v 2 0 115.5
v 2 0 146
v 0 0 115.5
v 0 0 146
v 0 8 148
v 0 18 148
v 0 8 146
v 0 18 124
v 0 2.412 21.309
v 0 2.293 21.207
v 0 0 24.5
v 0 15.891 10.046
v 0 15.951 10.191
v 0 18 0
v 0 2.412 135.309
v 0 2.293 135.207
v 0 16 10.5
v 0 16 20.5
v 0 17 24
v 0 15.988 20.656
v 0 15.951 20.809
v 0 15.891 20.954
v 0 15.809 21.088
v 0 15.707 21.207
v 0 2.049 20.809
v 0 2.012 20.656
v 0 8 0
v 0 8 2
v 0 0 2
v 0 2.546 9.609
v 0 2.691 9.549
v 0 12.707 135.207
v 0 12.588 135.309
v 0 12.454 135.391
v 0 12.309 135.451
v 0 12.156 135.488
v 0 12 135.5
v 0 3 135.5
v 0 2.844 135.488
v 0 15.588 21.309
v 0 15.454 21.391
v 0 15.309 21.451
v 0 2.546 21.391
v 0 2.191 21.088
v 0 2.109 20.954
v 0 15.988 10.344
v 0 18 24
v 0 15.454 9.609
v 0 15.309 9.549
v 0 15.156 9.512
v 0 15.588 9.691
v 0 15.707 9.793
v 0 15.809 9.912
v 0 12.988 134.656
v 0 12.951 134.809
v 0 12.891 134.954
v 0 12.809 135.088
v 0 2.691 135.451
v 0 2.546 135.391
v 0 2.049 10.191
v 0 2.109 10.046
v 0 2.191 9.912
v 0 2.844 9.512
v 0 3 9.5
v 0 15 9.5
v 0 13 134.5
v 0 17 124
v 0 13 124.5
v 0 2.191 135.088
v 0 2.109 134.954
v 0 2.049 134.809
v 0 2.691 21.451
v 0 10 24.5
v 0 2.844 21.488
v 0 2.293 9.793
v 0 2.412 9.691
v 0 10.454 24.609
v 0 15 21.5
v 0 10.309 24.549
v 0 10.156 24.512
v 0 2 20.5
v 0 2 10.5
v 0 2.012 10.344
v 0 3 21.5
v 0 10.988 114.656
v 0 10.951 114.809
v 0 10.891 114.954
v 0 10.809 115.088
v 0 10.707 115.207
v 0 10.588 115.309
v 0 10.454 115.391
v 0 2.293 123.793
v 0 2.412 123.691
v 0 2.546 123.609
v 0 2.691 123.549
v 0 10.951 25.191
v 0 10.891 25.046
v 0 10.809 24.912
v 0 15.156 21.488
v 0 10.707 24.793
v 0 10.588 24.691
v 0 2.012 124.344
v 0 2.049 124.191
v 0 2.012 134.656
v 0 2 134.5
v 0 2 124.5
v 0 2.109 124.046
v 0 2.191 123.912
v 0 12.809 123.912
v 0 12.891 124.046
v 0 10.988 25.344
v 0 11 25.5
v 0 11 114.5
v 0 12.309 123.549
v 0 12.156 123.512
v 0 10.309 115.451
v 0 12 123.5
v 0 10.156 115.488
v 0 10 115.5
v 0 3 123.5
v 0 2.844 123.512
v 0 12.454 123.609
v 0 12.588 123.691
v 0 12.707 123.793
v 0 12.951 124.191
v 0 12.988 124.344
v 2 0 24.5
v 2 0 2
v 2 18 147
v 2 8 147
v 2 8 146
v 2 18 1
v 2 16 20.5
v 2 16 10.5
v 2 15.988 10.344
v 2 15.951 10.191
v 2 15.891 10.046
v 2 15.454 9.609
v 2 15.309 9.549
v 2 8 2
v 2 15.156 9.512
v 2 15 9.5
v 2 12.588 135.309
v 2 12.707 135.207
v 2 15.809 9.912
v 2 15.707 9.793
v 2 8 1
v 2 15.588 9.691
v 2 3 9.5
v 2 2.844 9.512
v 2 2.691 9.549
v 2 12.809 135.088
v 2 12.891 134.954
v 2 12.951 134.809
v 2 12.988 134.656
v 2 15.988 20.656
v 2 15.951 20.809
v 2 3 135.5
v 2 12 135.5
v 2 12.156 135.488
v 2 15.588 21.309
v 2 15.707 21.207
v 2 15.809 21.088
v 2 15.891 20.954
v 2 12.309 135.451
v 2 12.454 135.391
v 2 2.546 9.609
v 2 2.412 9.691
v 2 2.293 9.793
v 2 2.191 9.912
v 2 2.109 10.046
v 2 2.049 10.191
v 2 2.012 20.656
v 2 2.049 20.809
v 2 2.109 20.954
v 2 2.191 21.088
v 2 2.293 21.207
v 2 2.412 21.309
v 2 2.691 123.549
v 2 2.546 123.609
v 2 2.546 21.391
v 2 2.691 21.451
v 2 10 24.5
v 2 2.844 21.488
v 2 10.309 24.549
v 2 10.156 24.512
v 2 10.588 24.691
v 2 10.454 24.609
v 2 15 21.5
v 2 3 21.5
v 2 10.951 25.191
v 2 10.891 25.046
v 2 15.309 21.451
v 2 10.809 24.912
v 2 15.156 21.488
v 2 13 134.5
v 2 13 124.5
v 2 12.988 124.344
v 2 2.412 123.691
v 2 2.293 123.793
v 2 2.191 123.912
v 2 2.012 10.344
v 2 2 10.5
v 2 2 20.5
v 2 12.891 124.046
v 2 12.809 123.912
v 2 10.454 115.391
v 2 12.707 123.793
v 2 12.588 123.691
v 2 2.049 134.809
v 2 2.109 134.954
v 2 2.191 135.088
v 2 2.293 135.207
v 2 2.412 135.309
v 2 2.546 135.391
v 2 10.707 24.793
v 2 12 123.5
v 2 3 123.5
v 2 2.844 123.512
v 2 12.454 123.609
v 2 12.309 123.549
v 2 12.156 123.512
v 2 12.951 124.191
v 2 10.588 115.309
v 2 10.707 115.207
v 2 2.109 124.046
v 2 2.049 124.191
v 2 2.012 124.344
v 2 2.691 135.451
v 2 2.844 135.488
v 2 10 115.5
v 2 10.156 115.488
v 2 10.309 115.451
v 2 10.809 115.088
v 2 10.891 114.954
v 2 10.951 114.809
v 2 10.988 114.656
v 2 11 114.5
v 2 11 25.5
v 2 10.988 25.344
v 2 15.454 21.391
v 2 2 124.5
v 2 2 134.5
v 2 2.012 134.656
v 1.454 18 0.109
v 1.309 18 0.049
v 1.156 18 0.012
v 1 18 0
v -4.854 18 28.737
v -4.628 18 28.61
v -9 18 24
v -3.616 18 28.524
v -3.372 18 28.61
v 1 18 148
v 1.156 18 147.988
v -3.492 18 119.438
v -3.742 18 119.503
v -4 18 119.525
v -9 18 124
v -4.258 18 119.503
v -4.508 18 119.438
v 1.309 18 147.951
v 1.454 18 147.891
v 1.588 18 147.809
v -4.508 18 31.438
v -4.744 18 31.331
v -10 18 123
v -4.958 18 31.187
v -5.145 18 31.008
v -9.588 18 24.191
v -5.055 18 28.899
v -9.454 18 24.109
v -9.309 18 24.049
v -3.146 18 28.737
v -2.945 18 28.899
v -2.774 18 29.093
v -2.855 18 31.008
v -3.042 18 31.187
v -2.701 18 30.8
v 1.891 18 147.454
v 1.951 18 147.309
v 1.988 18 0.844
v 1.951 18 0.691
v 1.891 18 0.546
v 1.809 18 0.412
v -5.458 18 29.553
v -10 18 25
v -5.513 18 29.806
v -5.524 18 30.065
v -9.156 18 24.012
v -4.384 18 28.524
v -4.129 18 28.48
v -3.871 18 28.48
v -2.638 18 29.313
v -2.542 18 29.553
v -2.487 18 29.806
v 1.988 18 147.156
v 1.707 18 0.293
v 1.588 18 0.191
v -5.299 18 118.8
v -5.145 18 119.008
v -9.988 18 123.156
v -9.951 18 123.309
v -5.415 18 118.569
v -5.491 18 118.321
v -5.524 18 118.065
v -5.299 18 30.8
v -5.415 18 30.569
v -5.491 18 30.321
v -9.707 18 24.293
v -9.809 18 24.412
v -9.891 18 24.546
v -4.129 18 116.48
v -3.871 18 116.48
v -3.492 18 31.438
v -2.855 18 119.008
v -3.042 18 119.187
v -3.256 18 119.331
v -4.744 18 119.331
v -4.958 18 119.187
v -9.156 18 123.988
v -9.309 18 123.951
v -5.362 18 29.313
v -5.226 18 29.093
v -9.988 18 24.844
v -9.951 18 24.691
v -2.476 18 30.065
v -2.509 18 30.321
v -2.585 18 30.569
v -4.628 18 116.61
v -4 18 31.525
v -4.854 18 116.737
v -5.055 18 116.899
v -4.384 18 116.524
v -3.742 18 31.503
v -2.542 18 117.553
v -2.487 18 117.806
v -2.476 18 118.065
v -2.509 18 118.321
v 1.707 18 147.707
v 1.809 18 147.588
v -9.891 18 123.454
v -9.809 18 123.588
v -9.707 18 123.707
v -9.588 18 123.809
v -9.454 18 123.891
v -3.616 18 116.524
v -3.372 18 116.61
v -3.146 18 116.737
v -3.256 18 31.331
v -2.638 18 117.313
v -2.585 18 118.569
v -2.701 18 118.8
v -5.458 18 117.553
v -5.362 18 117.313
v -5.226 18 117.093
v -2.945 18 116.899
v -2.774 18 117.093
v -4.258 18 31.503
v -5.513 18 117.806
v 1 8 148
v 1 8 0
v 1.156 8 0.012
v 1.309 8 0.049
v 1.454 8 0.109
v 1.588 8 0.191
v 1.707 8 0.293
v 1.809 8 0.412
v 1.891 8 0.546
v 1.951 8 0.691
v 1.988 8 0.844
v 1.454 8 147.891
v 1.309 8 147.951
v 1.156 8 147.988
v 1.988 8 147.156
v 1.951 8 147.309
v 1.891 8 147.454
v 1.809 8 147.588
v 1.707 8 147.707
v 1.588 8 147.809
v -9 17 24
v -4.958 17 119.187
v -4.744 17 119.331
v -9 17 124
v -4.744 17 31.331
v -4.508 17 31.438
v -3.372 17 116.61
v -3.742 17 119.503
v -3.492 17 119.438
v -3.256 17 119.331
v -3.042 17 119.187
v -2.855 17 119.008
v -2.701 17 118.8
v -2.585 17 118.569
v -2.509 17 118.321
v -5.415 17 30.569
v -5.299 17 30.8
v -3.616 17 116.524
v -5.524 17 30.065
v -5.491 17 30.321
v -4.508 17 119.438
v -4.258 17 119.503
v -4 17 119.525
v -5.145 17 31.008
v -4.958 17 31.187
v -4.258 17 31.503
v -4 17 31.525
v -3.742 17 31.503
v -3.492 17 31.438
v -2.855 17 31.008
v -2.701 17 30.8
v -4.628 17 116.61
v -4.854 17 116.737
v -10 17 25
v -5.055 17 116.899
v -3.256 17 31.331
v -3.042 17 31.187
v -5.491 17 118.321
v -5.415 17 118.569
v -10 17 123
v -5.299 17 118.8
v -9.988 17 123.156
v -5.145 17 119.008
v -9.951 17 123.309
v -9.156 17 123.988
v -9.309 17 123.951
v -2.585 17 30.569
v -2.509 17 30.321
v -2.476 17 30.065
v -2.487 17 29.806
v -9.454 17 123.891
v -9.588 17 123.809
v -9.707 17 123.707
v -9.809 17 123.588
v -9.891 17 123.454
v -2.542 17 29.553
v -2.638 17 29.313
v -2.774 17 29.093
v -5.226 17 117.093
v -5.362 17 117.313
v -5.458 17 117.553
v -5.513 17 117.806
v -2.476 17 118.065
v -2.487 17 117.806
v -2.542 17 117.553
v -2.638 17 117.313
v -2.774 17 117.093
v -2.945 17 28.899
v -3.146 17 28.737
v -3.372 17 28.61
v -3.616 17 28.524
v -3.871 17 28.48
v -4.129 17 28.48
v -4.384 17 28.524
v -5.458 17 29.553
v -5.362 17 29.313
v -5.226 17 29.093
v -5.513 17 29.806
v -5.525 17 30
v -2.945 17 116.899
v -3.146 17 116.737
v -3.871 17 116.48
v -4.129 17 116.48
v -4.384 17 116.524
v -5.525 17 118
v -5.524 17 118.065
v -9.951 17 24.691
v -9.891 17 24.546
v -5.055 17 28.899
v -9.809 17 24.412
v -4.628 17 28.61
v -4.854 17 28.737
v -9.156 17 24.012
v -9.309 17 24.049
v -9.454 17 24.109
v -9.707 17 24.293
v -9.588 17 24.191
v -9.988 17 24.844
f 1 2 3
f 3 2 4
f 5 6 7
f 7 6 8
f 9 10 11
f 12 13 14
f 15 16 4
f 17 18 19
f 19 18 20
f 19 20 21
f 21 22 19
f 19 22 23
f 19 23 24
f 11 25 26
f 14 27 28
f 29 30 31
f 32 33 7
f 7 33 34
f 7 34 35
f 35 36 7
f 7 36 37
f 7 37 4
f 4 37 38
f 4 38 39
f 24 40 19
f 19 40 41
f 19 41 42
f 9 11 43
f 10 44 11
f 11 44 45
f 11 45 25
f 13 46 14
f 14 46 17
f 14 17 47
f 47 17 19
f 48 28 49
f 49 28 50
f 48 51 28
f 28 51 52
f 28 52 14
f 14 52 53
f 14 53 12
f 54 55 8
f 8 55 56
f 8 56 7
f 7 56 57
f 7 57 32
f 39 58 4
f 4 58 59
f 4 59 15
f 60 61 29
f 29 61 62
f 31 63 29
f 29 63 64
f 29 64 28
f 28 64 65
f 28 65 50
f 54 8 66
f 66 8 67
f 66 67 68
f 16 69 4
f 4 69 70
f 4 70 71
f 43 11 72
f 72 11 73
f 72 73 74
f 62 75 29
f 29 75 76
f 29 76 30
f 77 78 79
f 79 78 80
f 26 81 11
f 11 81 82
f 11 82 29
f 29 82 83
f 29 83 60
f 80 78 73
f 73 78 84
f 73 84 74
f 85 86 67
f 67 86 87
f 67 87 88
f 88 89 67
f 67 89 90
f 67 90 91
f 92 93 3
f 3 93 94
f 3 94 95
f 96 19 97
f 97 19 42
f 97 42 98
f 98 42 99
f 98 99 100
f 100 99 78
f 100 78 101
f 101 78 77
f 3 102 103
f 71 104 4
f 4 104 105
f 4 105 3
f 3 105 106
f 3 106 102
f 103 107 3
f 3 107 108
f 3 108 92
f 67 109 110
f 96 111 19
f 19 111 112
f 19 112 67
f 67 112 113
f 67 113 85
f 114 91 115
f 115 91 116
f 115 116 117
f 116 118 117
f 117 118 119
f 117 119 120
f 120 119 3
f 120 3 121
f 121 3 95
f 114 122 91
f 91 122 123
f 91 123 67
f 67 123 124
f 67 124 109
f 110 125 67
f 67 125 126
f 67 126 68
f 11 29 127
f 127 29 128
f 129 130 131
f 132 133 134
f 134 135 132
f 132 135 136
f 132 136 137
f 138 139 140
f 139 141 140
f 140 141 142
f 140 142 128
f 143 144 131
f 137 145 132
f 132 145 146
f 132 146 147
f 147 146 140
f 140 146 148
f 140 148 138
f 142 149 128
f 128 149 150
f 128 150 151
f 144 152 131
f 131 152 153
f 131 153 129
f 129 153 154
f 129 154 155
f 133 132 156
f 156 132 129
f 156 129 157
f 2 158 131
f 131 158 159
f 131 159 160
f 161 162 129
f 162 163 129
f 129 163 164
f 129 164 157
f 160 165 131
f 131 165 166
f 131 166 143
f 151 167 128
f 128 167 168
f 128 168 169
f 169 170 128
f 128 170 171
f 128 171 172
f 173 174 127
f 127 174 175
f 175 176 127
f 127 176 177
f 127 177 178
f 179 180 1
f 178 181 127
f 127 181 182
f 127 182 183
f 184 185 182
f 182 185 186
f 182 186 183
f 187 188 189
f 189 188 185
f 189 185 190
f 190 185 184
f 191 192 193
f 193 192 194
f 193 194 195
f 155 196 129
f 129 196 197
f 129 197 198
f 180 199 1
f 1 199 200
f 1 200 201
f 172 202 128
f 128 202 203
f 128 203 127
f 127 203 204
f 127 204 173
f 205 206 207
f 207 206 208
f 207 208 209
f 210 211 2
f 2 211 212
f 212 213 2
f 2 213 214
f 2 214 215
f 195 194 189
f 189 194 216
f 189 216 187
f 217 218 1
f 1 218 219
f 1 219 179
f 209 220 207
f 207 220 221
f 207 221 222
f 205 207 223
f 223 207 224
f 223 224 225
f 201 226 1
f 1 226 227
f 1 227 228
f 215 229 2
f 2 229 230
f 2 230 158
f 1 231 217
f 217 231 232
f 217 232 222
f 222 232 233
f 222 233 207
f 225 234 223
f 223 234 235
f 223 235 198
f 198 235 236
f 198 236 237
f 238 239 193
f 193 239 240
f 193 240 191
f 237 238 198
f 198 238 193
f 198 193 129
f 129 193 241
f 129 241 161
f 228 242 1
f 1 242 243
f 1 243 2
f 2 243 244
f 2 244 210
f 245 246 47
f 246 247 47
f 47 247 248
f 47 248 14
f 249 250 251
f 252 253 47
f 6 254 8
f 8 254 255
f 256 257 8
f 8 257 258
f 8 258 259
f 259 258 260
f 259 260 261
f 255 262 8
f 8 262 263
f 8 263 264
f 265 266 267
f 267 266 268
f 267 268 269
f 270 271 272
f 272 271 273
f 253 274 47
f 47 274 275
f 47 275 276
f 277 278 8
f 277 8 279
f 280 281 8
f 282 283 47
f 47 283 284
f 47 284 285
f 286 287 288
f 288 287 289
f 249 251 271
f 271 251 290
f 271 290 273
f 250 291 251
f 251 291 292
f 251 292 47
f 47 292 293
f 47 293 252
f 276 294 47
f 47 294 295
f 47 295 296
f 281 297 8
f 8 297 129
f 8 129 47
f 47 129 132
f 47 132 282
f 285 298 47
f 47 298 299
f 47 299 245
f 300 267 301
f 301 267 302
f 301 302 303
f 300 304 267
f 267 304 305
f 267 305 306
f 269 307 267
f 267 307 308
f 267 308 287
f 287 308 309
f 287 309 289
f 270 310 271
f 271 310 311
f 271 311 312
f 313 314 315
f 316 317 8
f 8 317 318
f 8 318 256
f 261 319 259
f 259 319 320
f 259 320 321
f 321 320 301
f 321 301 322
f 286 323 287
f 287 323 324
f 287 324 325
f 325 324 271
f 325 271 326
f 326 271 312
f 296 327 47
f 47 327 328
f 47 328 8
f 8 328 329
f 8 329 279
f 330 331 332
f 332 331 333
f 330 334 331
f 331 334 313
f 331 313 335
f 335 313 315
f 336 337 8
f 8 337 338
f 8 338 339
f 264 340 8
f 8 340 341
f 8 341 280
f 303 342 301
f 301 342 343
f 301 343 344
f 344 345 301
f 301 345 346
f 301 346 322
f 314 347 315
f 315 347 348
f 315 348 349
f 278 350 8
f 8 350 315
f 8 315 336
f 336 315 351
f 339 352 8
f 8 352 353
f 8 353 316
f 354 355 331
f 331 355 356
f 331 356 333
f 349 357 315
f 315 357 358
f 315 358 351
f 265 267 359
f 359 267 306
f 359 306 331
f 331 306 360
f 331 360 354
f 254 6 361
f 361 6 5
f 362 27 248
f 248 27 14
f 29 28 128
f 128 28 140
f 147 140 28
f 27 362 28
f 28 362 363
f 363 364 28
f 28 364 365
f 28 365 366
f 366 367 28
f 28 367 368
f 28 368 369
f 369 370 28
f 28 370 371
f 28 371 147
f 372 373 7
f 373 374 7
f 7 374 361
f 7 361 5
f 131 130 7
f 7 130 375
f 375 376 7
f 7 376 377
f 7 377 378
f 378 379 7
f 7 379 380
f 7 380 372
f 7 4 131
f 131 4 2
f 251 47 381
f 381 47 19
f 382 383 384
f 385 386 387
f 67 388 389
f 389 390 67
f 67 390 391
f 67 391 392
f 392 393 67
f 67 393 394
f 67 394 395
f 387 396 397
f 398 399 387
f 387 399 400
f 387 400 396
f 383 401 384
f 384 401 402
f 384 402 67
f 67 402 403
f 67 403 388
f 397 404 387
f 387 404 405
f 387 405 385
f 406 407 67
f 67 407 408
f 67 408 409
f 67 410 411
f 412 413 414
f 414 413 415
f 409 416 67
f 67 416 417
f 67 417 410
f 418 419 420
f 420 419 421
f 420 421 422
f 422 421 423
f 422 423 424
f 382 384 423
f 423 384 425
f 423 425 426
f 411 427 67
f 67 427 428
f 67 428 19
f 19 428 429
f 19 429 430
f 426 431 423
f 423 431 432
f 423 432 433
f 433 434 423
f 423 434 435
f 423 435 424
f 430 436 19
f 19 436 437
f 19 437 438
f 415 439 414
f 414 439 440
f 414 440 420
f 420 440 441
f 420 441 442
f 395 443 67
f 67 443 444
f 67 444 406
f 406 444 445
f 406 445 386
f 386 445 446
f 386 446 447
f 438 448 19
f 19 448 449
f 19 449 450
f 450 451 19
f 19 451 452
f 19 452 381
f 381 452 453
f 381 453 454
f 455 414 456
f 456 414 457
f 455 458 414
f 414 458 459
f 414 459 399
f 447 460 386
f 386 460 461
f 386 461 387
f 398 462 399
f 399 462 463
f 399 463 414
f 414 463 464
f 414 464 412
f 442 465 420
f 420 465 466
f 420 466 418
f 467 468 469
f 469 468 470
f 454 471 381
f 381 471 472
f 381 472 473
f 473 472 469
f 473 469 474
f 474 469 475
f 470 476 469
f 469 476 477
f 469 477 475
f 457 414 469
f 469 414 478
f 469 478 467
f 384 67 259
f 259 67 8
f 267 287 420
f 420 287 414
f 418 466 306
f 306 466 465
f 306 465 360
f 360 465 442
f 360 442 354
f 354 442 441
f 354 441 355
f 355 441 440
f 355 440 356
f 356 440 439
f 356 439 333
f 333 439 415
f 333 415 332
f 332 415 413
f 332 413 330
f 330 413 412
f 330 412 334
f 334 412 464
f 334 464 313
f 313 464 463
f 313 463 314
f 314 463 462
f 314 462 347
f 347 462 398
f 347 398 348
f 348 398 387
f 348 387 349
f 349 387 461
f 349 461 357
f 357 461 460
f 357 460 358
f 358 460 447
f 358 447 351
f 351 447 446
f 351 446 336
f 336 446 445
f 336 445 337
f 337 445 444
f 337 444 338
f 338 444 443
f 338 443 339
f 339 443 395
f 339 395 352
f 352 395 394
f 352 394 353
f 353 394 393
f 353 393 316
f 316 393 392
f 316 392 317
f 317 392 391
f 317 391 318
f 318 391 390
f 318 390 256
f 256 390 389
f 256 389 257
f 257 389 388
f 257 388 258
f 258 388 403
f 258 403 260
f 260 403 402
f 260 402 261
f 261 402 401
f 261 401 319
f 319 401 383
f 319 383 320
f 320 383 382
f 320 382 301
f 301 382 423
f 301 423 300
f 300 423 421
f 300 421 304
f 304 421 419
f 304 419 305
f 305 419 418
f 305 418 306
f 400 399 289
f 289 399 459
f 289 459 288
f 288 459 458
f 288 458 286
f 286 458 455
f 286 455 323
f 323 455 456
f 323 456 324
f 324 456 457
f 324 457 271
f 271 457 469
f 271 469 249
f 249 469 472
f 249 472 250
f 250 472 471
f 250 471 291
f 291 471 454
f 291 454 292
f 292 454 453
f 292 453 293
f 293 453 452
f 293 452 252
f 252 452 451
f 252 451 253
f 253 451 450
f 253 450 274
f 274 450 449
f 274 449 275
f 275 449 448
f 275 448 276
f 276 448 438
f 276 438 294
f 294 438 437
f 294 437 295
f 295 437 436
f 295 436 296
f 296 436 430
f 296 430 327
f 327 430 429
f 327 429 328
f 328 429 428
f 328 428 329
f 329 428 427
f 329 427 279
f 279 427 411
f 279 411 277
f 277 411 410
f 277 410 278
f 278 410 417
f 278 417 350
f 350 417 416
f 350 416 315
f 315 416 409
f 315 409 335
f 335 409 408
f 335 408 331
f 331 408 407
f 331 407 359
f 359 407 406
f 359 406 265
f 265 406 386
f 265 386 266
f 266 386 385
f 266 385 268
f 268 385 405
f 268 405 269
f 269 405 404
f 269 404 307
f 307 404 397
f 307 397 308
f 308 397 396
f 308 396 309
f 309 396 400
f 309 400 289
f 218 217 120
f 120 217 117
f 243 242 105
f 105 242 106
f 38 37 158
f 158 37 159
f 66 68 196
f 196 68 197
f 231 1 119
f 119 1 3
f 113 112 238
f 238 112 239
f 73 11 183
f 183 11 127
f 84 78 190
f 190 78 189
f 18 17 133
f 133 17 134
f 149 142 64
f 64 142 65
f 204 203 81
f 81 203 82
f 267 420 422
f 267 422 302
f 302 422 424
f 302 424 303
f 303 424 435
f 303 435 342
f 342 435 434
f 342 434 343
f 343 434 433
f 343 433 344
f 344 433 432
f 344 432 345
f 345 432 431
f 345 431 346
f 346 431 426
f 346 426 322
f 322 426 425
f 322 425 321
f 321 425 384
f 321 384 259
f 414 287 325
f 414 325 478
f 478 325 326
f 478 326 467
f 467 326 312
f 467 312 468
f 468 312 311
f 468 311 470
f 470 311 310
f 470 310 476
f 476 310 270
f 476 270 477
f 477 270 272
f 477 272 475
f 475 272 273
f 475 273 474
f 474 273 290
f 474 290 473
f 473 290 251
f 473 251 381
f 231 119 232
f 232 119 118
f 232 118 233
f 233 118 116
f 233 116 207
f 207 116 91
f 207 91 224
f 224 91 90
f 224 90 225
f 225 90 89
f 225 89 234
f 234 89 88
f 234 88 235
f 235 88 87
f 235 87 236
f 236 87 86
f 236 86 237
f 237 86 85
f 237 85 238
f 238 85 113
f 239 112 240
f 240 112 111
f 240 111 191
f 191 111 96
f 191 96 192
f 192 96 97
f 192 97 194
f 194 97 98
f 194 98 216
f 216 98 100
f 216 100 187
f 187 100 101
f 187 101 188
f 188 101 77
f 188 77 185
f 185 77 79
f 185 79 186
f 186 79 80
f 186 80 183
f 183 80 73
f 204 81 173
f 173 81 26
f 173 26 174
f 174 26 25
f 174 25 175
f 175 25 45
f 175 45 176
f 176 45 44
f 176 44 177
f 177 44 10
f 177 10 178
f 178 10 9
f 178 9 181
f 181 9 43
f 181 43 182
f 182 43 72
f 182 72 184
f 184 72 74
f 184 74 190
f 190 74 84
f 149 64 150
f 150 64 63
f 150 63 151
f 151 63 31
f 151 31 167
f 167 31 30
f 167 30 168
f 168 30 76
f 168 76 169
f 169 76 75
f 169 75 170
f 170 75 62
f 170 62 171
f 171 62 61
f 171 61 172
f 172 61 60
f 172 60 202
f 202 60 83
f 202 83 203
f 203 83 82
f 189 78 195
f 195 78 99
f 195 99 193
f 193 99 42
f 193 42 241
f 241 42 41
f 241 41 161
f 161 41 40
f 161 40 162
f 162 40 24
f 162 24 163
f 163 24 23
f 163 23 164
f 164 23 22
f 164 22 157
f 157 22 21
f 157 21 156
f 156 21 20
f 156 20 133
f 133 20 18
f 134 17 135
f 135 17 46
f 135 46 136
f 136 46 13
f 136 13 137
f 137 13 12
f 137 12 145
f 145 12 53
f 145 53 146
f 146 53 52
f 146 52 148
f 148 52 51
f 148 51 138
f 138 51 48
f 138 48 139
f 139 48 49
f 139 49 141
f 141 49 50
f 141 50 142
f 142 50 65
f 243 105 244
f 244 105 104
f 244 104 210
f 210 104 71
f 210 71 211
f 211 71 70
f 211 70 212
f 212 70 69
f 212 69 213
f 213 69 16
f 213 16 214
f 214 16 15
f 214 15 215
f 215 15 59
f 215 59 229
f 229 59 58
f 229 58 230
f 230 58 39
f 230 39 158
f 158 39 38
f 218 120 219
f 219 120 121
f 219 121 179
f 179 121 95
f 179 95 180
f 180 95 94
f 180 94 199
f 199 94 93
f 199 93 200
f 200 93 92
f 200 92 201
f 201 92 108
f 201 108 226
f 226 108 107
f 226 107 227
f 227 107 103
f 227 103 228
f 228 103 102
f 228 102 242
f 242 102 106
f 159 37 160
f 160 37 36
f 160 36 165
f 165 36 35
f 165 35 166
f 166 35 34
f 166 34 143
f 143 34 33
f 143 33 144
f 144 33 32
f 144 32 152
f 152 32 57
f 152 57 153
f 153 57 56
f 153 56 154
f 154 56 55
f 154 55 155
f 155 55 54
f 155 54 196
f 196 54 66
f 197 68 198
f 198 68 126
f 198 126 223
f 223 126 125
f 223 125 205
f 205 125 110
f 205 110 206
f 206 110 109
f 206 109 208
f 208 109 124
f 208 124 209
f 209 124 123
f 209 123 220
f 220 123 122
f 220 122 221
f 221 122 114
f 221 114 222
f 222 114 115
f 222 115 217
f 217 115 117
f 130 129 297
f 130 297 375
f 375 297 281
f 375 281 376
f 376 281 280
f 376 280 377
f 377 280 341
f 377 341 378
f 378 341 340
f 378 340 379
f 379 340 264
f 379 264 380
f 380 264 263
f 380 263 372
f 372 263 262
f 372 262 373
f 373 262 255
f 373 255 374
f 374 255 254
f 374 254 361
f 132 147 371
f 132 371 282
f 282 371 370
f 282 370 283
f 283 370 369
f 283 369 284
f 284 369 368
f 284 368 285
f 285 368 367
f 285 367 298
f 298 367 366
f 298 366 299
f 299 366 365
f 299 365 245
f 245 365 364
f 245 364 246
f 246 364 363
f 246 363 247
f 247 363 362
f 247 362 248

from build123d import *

# Parameters (mm, degrees)
SKETCH_1_W          = 2
SKETCH_1_H          = 18
EXTRUDE_1_DEPTH     = 148
SKETCH_4_W          = 2
SKETCH_4_H          = 8
CUT_EXTRUDE_1_DEPTH = 150.103990557
SKETCH_8_W          = 100
SKETCH_8_H          = 1
EXTRUDE_5_DEPTH     = 10
SKETCH_9_R          = 1.525
CUT_EXTRUDE_3_DEPTH = 150.425566755
SKETCH_10_W         = 12
SKETCH_10_H         = 14
SKETCH_10_W_2       = 91
SKETCH_10_H_2       = 11
CUT_EXTRUDE_4_DEPTH = 150.572724786
FILLET_1_R          = 1
FILLET_2_R          = 1
FILLET_3_R          = 1
FILLET_4_R          = 1
FILLET_5_R          = 1
FILLET_7_R          = 1


with BuildPart() as part:
    # 草图1 → 凸台-拉伸1 (new body)
    with BuildSketch(Plane.XY):
        with Locations((1, 9)):
            Rectangle(SKETCH_1_W, SKETCH_1_H)
    extrude(amount=EXTRUDE_1_DEPTH)

    # 草图4 → 切除-拉伸1 (cut, through all)
    with BuildSketch(Plane(origin=(2, 0, 0), x_dir=(0, 0, -1), z_dir=(1, 0, 0))):
        with Locations((-1, 4)):
            Rectangle(SKETCH_4_W, SKETCH_4_H)
        with Locations((-147, 4)):
            Rectangle(SKETCH_4_W, SKETCH_4_H)
    extrude(amount=-CUT_EXTRUDE_1_DEPTH, mode=Mode.SUBTRACT)

    # 草图8 → 凸台-拉伸5 (add)
    with BuildSketch(Plane.ZY):
        with Locations((74, 17.5)):
            Rectangle(SKETCH_8_W, SKETCH_8_H)
    extrude(amount=EXTRUDE_5_DEPTH)

    # 草图9 → 切除-拉伸3 (cut, through all)
    with BuildSketch(Plane(origin=(0, 18, 0), x_dir=(1, 0, 0), z_dir=(0, 1, 0))):
        with Locations(Location((-4, -30, 0), (0, 0, 270))):
            Circle(SKETCH_9_R)
        with Locations(Location((-4, -118, 0), (0, 0, 270))):
            Circle(SKETCH_9_R)
    extrude(amount=-CUT_EXTRUDE_3_DEPTH, mode=Mode.SUBTRACT)

    # 草图10 → 切除-拉伸4 (cut, through all)
    with BuildSketch(Plane(origin=(2, 0, 0), x_dir=(0, 0, -1), z_dir=(1, 0, 0))):
        with Locations((-15.5, 9)):
            Rectangle(SKETCH_10_W, SKETCH_10_H)
        with Locations((-70, 5.5)):
            Rectangle(SKETCH_10_W_2, SKETCH_10_H_2)
        with Locations((-129.5, 7.5)):
            Rectangle(SKETCH_10_W, SKETCH_10_H_2)
    extrude(amount=-CUT_EXTRUDE_4_DEPTH, mode=Mode.SUBTRACT)

    # 圆角1
    fillet_1_edges = [part.edges().sort_by_distance(p)[0] for p in [
        (-10, 17.5, 24),
        (-10, 17.5, 124),
    ]]
    fillet(fillet_1_edges, radius=FILLET_1_R)

    # 圆角2
    fillet_2_edges = [part.edges().sort_by_distance(p)[0] for p in [
        (1, 11, 115.5),
        (1, 11, 24.5),
    ]]
    fillet(fillet_2_edges, radius=FILLET_2_R)

    # 圆角3
    fillet_3_edges = [part.edges().sort_by_distance(p)[0] for p in [
        (1, 2, 21.5),
        (1, 16, 21.5),
        (1, 16, 9.5),
        (1, 2, 9.5),
    ]]
    fillet(fillet_3_edges, radius=FILLET_3_R)

    # 圆角4
    fillet_4_edges = [part.edges().sort_by_distance(p)[0] for p in [
        (1, 13, 123.5),
        (1, 2, 123.5),
        (1, 2, 135.5),
        (1, 13, 135.5),
    ]]
    fillet(fillet_4_edges, radius=FILLET_4_R)

    # 圆角5
    fillet_5_edges = [part.edges().sort_by_distance(p)[0] for p in [
        (2, 13, 148),
    ]]
    fillet(fillet_5_edges, radius=FILLET_5_R)

    # 圆角7
    fillet_7_edges = [part.edges().sort_by_distance(p)[0] for p in [
        (2, 13, 0),
    ]]
    fillet(fillet_7_edges, radius=FILLET_7_R)


solid = part.part
